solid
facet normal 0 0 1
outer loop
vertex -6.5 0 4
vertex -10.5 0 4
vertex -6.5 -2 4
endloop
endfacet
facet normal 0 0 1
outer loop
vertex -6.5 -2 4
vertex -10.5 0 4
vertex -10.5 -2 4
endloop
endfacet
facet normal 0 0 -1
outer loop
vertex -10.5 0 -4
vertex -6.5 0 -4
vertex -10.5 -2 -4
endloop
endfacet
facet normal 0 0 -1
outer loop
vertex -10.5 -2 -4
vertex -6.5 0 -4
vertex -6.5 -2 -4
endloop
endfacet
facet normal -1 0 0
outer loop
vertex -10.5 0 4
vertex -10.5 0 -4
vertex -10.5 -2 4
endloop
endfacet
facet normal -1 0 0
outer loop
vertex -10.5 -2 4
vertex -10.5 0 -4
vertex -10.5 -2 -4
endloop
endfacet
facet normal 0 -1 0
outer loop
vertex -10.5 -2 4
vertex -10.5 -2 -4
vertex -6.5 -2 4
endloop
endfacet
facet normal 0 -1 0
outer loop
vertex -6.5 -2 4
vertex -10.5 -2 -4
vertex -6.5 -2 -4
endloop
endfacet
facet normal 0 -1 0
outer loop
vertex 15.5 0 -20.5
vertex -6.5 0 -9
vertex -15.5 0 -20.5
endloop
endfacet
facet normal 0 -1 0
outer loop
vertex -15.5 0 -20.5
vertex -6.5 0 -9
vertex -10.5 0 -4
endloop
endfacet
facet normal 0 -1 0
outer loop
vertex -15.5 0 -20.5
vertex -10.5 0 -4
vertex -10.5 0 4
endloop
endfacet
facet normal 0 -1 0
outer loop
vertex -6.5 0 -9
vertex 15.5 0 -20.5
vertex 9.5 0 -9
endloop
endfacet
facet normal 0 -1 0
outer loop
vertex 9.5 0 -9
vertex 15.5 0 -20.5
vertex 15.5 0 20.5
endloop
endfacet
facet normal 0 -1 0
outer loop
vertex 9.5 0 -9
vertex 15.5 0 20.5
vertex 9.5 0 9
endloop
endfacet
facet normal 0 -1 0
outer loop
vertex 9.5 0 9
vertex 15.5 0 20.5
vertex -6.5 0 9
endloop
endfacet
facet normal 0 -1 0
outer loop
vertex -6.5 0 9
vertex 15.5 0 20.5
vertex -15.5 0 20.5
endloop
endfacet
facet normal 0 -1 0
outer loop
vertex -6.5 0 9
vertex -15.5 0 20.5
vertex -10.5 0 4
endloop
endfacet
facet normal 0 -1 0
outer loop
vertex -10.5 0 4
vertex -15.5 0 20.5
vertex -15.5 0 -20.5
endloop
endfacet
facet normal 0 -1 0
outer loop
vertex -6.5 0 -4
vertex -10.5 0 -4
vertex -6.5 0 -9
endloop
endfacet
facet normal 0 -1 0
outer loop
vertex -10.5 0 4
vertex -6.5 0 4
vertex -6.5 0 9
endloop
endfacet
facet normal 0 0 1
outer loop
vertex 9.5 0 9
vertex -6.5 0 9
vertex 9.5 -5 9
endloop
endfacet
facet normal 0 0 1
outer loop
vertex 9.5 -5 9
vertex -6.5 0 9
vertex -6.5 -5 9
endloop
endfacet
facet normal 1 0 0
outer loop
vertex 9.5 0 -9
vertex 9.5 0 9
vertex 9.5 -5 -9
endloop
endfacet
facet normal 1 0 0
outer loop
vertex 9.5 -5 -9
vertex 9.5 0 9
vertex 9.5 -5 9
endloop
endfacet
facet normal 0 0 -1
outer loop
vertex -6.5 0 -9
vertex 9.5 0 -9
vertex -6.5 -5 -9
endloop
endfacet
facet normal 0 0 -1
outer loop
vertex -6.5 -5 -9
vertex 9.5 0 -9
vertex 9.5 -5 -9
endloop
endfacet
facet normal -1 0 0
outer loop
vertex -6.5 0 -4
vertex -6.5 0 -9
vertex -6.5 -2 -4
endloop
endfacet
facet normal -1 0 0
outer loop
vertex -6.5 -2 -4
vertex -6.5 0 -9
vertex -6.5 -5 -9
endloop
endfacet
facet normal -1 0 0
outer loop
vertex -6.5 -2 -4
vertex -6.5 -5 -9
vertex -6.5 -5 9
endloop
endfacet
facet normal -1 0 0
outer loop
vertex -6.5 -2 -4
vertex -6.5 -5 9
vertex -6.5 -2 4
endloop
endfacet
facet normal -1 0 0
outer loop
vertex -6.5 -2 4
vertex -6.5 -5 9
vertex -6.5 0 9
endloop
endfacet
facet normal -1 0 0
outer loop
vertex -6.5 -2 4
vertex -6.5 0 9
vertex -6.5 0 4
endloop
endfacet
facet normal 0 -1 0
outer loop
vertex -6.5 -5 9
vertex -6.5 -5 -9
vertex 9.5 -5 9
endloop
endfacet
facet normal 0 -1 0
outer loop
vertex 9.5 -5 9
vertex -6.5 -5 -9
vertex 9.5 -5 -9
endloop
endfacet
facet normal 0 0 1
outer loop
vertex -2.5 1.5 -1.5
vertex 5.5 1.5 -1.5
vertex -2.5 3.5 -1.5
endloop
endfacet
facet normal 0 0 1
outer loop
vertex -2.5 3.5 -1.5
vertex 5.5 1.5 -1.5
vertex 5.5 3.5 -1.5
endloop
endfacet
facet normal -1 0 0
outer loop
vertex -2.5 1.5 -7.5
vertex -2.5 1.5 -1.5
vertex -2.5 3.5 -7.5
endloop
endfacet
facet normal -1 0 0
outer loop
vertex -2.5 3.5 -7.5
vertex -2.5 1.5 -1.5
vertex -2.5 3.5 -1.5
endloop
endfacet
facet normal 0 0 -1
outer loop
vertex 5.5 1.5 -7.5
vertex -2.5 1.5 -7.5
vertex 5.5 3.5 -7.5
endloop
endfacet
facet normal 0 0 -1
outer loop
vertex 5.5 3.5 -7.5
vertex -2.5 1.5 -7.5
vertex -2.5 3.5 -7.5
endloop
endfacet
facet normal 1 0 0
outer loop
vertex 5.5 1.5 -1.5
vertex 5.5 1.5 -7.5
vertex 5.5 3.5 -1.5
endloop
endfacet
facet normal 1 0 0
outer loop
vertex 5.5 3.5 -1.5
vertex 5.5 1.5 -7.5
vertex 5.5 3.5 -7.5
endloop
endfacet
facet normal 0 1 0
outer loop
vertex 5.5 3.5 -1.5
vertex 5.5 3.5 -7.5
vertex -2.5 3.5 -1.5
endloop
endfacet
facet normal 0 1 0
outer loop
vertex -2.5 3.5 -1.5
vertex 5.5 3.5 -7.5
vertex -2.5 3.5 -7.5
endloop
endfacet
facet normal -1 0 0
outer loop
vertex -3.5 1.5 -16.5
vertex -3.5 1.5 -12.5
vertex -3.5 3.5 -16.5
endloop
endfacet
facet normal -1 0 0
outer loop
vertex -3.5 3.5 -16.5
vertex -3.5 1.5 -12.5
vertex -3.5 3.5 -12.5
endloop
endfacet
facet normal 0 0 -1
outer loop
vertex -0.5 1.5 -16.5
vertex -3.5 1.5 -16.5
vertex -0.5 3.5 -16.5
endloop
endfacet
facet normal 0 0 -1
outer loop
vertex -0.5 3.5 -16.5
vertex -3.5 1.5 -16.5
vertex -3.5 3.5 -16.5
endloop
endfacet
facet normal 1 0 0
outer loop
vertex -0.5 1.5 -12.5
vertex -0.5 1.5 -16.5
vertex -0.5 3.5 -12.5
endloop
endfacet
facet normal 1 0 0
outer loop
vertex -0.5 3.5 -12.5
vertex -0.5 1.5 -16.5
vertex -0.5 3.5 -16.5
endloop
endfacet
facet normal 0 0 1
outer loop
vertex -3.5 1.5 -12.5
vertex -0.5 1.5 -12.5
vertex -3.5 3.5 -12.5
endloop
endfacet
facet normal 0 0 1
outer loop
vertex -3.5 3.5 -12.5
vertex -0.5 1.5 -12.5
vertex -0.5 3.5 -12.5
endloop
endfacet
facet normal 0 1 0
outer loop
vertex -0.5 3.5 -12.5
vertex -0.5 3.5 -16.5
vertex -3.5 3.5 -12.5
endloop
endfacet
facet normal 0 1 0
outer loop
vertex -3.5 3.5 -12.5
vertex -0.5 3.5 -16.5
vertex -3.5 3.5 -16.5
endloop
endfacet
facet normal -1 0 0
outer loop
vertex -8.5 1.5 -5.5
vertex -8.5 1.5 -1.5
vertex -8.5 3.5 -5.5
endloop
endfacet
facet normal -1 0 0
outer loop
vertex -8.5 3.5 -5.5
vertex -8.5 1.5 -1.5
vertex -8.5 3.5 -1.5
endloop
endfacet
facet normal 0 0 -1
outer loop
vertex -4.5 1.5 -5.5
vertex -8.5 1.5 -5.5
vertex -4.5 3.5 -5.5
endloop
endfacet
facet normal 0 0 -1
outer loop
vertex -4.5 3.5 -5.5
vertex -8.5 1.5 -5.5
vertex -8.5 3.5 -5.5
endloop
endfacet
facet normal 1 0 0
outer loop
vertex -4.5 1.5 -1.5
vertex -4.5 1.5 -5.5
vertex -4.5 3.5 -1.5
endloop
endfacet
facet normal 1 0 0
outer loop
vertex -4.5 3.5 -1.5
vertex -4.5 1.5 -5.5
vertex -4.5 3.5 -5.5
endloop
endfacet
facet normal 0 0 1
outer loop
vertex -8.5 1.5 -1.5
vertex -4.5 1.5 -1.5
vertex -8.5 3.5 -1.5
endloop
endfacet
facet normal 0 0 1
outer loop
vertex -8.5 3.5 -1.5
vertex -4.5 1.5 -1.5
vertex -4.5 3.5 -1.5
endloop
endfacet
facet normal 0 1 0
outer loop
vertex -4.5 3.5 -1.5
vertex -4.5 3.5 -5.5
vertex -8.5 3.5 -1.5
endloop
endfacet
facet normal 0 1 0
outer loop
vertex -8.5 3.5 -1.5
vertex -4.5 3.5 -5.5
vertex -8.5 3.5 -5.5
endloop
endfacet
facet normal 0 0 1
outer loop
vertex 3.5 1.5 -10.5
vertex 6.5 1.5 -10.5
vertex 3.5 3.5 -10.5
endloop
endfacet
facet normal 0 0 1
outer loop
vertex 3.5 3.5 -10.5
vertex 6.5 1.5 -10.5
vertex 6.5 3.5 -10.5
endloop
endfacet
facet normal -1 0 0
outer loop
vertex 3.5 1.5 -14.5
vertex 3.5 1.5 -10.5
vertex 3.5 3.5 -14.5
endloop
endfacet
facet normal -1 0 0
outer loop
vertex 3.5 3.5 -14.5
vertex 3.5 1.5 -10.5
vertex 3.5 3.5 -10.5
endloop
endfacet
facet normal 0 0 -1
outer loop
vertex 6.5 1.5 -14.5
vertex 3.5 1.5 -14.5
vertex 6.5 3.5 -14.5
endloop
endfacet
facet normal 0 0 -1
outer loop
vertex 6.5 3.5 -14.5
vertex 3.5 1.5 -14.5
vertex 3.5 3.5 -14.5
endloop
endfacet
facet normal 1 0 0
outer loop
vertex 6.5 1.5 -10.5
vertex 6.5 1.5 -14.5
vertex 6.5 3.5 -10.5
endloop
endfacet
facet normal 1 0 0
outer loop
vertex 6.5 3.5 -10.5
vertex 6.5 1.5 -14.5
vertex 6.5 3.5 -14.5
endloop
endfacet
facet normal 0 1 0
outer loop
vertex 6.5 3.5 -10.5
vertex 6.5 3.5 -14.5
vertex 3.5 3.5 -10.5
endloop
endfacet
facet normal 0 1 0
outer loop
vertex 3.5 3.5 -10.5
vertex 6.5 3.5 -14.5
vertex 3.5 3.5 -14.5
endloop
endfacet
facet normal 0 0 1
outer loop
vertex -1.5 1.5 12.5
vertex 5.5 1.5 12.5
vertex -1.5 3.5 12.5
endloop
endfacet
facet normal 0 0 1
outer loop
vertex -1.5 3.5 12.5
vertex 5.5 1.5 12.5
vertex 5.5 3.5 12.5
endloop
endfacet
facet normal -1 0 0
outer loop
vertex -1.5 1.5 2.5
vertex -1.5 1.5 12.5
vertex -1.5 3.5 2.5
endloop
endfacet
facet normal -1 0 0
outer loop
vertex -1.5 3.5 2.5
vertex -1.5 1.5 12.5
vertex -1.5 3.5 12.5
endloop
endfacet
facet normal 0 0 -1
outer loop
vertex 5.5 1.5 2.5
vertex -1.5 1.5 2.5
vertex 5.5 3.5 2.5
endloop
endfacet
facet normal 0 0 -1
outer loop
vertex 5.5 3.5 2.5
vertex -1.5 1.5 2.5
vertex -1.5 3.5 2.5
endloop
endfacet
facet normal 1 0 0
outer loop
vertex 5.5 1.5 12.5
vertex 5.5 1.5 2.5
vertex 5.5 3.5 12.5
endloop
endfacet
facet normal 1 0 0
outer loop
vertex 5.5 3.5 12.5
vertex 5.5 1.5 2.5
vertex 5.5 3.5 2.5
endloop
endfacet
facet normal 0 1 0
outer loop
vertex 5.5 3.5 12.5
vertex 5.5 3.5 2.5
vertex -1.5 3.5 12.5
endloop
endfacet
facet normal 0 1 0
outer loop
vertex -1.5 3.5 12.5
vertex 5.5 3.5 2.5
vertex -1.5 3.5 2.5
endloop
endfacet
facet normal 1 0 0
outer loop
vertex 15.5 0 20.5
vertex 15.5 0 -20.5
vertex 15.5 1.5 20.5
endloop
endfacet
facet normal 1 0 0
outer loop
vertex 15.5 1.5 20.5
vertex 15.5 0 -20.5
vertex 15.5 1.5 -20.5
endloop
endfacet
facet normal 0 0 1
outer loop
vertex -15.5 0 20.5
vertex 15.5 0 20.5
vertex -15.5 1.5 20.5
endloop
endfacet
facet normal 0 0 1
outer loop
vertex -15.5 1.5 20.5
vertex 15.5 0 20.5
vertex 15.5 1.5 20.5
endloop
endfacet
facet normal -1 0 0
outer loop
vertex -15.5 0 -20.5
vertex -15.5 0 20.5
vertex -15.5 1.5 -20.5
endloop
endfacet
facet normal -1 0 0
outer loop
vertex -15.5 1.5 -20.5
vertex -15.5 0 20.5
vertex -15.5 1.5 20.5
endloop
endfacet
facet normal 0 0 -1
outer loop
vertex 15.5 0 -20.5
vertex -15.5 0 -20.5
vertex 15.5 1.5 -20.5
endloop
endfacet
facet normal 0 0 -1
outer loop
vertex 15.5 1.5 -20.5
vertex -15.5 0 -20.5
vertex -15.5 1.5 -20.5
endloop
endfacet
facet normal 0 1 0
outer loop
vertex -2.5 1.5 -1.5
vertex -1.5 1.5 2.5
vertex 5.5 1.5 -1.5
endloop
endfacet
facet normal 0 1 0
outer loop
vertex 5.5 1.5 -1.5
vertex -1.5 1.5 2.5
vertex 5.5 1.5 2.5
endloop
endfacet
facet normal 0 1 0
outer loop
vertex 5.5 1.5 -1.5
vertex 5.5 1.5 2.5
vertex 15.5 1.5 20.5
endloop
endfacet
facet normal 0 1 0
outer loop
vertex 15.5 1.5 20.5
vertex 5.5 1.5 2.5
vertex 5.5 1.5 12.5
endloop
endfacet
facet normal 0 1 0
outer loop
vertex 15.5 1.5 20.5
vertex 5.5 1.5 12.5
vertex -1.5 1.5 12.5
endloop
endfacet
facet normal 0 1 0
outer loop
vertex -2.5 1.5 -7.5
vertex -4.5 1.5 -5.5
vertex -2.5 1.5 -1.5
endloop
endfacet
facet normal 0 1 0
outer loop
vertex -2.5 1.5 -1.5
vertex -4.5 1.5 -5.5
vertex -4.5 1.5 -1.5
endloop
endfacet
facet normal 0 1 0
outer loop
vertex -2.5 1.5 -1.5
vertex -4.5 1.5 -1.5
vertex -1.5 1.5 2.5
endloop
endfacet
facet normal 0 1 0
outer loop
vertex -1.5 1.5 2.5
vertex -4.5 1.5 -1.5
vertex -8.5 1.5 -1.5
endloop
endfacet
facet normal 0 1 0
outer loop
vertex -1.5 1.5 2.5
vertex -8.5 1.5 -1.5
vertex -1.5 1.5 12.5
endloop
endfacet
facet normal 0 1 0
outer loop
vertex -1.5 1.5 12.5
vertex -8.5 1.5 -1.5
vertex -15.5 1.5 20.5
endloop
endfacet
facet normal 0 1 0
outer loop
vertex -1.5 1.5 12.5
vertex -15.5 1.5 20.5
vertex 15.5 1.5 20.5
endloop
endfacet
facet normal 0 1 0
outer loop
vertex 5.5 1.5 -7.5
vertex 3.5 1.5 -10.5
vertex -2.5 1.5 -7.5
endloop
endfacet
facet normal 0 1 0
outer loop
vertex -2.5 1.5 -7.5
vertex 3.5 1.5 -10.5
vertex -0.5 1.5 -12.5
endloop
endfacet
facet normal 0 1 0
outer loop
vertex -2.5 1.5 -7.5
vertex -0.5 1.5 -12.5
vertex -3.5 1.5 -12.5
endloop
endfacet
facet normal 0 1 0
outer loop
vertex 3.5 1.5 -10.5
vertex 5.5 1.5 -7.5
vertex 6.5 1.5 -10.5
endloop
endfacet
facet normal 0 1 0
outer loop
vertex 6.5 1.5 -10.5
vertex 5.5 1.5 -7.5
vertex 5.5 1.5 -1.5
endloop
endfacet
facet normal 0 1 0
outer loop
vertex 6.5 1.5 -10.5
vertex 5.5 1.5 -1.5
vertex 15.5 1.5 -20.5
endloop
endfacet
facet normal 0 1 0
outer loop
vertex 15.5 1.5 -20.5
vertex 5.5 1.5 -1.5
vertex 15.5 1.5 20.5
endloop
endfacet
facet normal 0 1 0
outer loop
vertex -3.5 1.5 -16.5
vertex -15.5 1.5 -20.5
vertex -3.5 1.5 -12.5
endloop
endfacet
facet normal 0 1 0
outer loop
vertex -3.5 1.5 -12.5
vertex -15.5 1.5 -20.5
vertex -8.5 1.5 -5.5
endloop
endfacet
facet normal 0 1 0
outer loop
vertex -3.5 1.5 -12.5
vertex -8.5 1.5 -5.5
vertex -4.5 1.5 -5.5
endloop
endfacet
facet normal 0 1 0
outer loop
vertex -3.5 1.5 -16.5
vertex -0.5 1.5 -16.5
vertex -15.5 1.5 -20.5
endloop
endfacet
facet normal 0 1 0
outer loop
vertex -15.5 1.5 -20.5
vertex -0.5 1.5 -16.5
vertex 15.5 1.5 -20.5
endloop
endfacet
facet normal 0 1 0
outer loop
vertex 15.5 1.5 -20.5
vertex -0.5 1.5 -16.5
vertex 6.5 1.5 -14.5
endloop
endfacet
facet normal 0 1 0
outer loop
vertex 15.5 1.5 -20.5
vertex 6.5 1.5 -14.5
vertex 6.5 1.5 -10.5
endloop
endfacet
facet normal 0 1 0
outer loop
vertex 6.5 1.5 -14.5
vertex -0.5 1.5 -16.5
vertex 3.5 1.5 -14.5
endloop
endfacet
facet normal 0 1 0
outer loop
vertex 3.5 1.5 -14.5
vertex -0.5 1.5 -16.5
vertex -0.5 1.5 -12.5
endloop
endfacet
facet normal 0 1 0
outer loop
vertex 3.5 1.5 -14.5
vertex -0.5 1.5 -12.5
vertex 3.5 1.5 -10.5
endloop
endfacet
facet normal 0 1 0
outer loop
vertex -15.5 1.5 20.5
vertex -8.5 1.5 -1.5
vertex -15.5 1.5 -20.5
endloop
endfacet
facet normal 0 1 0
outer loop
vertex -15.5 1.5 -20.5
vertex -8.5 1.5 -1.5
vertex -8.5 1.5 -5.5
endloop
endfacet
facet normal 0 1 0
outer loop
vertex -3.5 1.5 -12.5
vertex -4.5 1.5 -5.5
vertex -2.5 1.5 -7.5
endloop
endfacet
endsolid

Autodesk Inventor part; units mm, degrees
ref_plane "YZ Plane" through (0, 0, 0) normal (1, 0, 0) x (0, 1, 0)
ref_plane "XZ Plane" through (0, 0, 0) normal (0, 1, 0) x (-1, 0, 0)
ref_plane "XY Plane" through (0, 0, 0) normal (0, 0, 1) x (1, 0, 0)
sketch "Эскиз1" plane through (0, 0, 0) normal (0, 1, 0) x (-1, 0, 0)
  line L0 (-15.5, 20.5) -> (15.5, 20.5)
  line L1 (15.5, 20.5) -> (15.5, -20.5)
  line L2 (15.5, -20.5) -> (-15.5, -20.5)
  line L3 (-15.5, -20.5) -> (-15.5, 20.5)
  line L4 (-15.5, 20.5) -> (15.5, -20.5) construction
  line L5 (15.5, 20.5) -> (-15.5, -20.5) construction
  point P0 (0, 0)
  dimension "d0" = 41
  dimension "d1" = 31
extrude "Выдавливание1" add sketch "Эскиз1" along normal blind 1.5
sketch "Эскиз2" plane through (0, 1.5, 0) normal (0, 1, 0) x (1, 0, 0)
  line L0 (-1.5, -12.5) -> (5.5, -12.5)
  line L1 (5.5, -12.5) -> (5.5, -2.5)
  line L2 (5.5, -2.5) -> (-1.5, -2.5)
  line L3 (-1.5, -2.5) -> (-1.5, -12.5)
  line L4 (-1.5, -12.5) -> (5.5, -2.5) construction
  line L5 (5.5, -12.5) -> (-1.5, -2.5) construction
  line L6 (-2.5, 1.5) -> (5.5, 1.5)
  line L7 (5.5, 1.5) -> (5.5, 7.5)
  line L8 (5.5, 7.5) -> (-2.5, 7.5)
  line L9 (-2.5, 7.5) -> (-2.5, 1.5)
  line L10 (-2.5, 1.5) -> (5.5, 7.5) construction
  line L11 (5.5, 1.5) -> (-2.5, 7.5) construction
  line L12 (3.5, 10.5) -> (6.5, 10.5)
  line L13 (6.5, 10.5) -> (6.5, 14.5)
  line L14 (6.5, 14.5) -> (3.5, 14.5)
  line L15 (3.5, 14.5) -> (3.5, 10.5)
  line L16 (3.5, 10.5) -> (6.5, 14.5) construction
  line L17 (6.5, 10.5) -> (3.5, 14.5) construction
  line L18 (-3.5, 16.5) -> (-0.5, 16.5)
  line L19 (-0.5, 16.5) -> (-0.5, 12.5)
  line L20 (-0.5, 12.5) -> (-3.5, 12.5)
  line L21 (-3.5, 12.5) -> (-3.5, 16.5)
  line L22 (-3.5, 16.5) -> (-0.5, 12.5) construction
  line L23 (-0.5, 16.5) -> (-3.5, 12.5) construction
  line L24 (-8.5, 5.5) -> (-4.5, 5.5)
  line L25 (-4.5, 5.5) -> (-4.5, 1.5)
  line L26 (-4.5, 1.5) -> (-8.5, 1.5)
  line L27 (-8.5, 1.5) -> (-8.5, 5.5)
  line L28 (-8.5, 5.5) -> (-4.5, 1.5) construction
  line L29 (-4.5, 5.5) -> (-8.5, 1.5) construction
  line L30 (15.5, 20.5) -> (-15.5, 20.5) projected
  line L31 (15.5, -20.5) -> (15.5, 20.5) projected
  line L32 (-15.5, -20.5) -> (15.5, -20.5) projected
  point P0 (0, 0)
  point P1 (2, -7.5)
  point P2 (1.5, 4.5)
  point P3 (5, 12.5)
  point P4 (-2, 14.5)
  point P5 (-6.5, 3.5)
  dimension "d4" = 4
  dimension "d5" = 4
  dimension "d6" = 3
  dimension "d7" = 4
  dimension "d8" = 3
  dimension "d9" = 6
  dimension "d10" = 8
  dimension "d11" = 7
  dimension "d12" = 10
  dimension "d13" = 6
  dimension "d14" = 4
  dimension "d15" = 16
  dimension "d16" = 9
  dimension "d17" = 15
  dimension "d18" = 20
  dimension "d19" = 13
  dimension "d20" = 10
  dimension "d21" = 10
  dimension "d22" = 8
extrude "Выдавливание2" add sketch "Эскиз2" along normal blind 2
sketch "Эскиз3" plane through (0, 0, 0) normal (0, -1, 0) x (1, 0, 0)
  line L0 (-6.5, -9) -> (9.5, -9)
  line L1 (9.5, -9) -> (9.5, 9)
  line L2 (9.5, 9) -> (-6.5, 9)
  line L3 (-6.5, 9) -> (-6.5, -9)
  line L4 (-6.5, -9) -> (9.5, 9) construction
  line L5 (9.5, -9) -> (-6.5, 9) construction
  line L6 (15.5, 20.5) -> (15.5, -20.5) projected
  line L7 (-10.5, -4) -> (-6.5, -4)
  line L8 (-6.5, -4) -> (-6.5, 4)
  line L9 (-6.5, 4) -> (-10.5, 4)
  line L10 (-10.5, 4) -> (-10.5, -4)
  line L11 (-10.5, -4) -> (-6.5, 4) construction
  line L12 (-6.5, -4) -> (-10.5, 4) construction
  line L13 (-15.5, -20.5) -> (-15.5, 20.5) projected
  point P0 (0, 0)
  point P1 (1.5, 0)
  point P2 (1.5, 0)
  point P3 (-8.5, 0)
  point P4 (-8.5, 0)
  dimension "d25" = 16
  dimension "d26" = 18
  dimension "d27" = 6
  dimension "d28" = 8
  dimension "d29" = 4
  dimension "d30" = 5
extrude "Выдавливание3" add sketch "Эскиз3" along normal blind 5 contours L3 L2 L1 L0
sketch "Эскиз4" plane through (0, 0, 0) normal (0, -1, 0) x (1, 0, 0)
  line L0 (-6.5, 4) -> (-10.5, 4)
  line L1 (-10.5, 4) -> (-10.5, -4)
  line L2 (-10.5, -4) -> (-6.5, -4)
  line L3 (-6.5, -4) -> (-6.5, 4)
  line L4 (-6.5, 4) -> (-10.5, -4) construction
  line L5 (-10.5, 4) -> (-6.5, -4) construction
  line L6 (-15.5, -20.5) -> (-15.5, 20.5) projected
  point P0 (0, 0)
  point P1 (-8.5, 0)
  point P2 (-8.5, 0)
  dimension "d33" = 4
  dimension "d34" = 8
  dimension "d35" = 5
extrude "Выдавливание4" add sketch "Эскиз4" along normal blind 2
properties part number "РБАСУ" material "Пластик АБС"
